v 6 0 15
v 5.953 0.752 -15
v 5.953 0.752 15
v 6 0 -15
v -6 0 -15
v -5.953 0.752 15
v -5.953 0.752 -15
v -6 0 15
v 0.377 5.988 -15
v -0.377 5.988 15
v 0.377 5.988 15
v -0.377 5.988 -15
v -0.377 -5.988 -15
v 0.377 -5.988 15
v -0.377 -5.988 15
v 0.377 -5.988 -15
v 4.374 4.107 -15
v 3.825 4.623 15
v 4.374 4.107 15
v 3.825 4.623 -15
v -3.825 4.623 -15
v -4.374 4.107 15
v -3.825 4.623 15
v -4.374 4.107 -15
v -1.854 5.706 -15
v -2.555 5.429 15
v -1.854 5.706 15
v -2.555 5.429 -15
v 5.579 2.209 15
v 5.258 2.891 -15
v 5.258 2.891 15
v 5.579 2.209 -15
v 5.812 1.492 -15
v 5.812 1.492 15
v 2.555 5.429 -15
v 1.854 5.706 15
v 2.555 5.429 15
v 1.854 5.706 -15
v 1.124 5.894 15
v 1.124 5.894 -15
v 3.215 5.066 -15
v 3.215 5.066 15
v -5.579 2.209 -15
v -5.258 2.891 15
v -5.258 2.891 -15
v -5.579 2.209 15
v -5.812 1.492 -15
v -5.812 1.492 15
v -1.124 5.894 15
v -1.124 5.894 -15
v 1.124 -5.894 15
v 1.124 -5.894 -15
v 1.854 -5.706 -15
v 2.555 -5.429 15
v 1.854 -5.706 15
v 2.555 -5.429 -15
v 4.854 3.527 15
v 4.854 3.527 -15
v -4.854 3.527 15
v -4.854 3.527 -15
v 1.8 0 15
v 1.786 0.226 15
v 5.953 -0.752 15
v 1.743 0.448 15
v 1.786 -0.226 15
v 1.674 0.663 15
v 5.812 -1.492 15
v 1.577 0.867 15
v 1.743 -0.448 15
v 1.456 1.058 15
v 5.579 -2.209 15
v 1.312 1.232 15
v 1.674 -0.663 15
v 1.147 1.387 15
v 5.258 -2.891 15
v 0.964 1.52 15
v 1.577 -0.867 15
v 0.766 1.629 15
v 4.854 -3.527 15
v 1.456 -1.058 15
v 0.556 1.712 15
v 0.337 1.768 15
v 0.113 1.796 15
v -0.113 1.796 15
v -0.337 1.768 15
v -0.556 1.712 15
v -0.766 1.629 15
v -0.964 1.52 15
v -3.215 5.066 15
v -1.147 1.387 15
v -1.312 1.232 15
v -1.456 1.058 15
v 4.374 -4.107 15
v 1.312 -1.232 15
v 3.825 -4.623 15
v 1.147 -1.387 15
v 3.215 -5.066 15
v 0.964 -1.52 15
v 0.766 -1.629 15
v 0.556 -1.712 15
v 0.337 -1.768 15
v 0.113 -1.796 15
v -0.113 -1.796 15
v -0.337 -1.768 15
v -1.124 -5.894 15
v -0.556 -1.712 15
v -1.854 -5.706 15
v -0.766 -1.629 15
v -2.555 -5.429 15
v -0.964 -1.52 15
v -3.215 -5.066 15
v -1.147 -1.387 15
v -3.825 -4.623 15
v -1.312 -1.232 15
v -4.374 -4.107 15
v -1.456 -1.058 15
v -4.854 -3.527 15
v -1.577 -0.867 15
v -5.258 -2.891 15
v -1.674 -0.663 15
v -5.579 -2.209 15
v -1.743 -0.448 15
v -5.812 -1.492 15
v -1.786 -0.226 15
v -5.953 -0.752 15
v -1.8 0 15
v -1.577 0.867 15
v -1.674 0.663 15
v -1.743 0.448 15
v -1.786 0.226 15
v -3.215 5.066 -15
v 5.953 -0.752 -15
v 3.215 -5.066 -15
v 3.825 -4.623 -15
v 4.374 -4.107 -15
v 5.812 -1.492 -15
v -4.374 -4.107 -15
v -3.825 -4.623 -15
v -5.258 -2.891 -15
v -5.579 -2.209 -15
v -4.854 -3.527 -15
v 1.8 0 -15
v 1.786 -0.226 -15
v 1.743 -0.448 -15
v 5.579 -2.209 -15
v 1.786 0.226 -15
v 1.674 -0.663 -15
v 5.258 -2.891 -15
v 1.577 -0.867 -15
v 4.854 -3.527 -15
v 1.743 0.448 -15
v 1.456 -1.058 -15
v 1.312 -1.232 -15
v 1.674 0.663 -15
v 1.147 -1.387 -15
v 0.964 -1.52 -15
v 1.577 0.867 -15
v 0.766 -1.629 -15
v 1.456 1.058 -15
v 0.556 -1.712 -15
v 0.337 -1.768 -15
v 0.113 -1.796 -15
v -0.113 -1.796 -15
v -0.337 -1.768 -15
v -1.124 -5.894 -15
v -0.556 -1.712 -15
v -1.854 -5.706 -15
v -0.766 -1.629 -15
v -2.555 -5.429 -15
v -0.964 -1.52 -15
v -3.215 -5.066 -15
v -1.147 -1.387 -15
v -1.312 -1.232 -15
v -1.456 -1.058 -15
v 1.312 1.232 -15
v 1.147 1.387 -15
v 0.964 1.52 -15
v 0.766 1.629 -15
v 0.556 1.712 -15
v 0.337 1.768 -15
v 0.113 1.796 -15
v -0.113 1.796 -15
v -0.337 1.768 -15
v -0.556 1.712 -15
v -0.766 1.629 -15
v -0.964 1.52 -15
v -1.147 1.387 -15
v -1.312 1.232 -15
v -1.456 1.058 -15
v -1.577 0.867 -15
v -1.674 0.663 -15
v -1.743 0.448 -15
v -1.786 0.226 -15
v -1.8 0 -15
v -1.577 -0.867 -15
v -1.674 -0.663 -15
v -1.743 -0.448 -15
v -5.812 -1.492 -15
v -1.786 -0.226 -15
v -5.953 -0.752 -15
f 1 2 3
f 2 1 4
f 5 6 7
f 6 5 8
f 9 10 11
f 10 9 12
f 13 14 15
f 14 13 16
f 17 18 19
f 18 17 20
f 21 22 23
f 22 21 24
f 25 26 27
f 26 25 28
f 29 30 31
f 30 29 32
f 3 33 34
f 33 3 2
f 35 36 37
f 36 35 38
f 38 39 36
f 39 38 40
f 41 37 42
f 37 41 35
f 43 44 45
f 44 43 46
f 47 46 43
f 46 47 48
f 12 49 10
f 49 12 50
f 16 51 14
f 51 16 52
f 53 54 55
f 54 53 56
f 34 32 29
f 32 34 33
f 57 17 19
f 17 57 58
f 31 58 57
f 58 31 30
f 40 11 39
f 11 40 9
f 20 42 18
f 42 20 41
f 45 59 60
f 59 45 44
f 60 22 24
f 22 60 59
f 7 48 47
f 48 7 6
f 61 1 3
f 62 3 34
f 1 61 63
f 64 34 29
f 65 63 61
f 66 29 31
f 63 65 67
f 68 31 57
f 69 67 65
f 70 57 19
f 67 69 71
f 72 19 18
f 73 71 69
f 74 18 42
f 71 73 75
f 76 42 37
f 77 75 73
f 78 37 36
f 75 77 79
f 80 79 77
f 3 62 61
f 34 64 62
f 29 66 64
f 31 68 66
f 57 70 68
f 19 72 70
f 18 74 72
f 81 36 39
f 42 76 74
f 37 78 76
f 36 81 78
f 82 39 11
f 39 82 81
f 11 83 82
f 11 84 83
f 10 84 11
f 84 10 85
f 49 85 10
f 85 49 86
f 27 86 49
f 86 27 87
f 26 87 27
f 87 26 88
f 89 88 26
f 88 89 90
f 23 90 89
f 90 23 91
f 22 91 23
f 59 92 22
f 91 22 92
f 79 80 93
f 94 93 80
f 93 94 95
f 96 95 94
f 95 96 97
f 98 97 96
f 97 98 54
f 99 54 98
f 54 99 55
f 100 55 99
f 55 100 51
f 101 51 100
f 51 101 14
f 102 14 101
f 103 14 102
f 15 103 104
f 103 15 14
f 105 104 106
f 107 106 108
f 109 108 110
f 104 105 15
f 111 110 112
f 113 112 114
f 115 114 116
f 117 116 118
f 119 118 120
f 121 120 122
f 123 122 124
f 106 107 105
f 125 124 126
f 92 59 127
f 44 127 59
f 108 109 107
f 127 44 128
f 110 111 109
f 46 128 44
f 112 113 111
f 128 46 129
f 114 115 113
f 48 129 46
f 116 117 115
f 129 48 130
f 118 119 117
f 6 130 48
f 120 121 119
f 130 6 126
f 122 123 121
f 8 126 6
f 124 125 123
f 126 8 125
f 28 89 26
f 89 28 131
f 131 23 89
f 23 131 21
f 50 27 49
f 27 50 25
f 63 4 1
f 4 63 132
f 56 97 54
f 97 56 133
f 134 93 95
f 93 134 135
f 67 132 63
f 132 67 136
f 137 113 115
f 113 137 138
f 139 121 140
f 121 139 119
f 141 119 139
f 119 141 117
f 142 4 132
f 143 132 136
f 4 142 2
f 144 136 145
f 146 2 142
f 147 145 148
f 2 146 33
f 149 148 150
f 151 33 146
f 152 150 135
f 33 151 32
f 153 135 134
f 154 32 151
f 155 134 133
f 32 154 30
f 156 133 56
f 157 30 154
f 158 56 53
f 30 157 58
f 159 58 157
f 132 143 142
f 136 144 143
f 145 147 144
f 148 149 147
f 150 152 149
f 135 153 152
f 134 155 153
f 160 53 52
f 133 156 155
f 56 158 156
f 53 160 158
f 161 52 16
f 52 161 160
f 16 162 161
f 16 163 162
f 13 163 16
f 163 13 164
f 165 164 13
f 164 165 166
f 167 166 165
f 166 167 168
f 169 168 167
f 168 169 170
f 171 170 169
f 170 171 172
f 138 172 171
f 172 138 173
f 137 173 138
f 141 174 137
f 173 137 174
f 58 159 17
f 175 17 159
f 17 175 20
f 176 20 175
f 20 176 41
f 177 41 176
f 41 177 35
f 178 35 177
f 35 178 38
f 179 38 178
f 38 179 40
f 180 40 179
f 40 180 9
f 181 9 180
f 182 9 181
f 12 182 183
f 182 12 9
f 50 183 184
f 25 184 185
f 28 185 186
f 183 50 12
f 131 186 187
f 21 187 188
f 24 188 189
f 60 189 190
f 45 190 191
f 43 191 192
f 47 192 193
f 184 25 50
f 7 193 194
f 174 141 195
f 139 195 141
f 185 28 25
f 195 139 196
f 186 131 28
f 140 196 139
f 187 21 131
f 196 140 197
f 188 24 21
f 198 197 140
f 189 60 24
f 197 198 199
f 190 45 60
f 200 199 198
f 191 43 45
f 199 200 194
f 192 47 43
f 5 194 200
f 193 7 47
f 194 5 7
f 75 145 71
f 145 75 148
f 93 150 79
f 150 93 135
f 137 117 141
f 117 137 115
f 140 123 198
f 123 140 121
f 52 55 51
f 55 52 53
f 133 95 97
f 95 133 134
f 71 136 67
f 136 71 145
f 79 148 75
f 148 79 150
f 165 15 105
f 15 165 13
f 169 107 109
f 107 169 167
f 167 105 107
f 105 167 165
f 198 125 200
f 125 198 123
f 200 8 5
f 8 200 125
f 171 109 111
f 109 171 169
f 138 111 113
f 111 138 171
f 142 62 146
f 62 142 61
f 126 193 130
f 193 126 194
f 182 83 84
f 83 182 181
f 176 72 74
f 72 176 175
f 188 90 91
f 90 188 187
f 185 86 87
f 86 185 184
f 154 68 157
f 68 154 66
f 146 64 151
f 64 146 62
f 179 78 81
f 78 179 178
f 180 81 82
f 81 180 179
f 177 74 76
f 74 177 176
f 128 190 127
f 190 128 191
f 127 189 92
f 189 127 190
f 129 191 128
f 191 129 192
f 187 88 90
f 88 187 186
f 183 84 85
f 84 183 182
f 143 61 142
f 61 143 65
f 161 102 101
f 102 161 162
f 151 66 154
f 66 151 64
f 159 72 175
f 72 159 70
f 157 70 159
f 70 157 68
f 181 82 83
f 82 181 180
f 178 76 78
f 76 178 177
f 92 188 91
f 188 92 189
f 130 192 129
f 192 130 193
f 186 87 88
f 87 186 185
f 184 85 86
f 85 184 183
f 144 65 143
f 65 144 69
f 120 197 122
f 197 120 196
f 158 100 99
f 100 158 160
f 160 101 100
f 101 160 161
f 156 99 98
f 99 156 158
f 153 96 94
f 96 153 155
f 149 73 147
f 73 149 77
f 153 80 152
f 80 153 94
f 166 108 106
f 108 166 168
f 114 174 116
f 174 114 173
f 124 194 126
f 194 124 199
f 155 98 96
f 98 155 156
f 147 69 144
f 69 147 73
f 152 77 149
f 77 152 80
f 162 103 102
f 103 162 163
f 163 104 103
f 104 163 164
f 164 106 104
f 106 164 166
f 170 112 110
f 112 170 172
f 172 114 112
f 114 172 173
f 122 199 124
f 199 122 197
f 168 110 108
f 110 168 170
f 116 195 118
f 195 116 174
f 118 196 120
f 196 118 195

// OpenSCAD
$fn = 50;


difference() {
	union() {
		translate(v = [0, 0, -15.0000000000]) {
			cylinder(h = 30, r = 6.0000000000);
		}
	}
	union() {
		translate(v = [0, 0, -100.0000000000]) {
			cylinder(h = 200, r = 1.8000000000);
		}
	}
}
